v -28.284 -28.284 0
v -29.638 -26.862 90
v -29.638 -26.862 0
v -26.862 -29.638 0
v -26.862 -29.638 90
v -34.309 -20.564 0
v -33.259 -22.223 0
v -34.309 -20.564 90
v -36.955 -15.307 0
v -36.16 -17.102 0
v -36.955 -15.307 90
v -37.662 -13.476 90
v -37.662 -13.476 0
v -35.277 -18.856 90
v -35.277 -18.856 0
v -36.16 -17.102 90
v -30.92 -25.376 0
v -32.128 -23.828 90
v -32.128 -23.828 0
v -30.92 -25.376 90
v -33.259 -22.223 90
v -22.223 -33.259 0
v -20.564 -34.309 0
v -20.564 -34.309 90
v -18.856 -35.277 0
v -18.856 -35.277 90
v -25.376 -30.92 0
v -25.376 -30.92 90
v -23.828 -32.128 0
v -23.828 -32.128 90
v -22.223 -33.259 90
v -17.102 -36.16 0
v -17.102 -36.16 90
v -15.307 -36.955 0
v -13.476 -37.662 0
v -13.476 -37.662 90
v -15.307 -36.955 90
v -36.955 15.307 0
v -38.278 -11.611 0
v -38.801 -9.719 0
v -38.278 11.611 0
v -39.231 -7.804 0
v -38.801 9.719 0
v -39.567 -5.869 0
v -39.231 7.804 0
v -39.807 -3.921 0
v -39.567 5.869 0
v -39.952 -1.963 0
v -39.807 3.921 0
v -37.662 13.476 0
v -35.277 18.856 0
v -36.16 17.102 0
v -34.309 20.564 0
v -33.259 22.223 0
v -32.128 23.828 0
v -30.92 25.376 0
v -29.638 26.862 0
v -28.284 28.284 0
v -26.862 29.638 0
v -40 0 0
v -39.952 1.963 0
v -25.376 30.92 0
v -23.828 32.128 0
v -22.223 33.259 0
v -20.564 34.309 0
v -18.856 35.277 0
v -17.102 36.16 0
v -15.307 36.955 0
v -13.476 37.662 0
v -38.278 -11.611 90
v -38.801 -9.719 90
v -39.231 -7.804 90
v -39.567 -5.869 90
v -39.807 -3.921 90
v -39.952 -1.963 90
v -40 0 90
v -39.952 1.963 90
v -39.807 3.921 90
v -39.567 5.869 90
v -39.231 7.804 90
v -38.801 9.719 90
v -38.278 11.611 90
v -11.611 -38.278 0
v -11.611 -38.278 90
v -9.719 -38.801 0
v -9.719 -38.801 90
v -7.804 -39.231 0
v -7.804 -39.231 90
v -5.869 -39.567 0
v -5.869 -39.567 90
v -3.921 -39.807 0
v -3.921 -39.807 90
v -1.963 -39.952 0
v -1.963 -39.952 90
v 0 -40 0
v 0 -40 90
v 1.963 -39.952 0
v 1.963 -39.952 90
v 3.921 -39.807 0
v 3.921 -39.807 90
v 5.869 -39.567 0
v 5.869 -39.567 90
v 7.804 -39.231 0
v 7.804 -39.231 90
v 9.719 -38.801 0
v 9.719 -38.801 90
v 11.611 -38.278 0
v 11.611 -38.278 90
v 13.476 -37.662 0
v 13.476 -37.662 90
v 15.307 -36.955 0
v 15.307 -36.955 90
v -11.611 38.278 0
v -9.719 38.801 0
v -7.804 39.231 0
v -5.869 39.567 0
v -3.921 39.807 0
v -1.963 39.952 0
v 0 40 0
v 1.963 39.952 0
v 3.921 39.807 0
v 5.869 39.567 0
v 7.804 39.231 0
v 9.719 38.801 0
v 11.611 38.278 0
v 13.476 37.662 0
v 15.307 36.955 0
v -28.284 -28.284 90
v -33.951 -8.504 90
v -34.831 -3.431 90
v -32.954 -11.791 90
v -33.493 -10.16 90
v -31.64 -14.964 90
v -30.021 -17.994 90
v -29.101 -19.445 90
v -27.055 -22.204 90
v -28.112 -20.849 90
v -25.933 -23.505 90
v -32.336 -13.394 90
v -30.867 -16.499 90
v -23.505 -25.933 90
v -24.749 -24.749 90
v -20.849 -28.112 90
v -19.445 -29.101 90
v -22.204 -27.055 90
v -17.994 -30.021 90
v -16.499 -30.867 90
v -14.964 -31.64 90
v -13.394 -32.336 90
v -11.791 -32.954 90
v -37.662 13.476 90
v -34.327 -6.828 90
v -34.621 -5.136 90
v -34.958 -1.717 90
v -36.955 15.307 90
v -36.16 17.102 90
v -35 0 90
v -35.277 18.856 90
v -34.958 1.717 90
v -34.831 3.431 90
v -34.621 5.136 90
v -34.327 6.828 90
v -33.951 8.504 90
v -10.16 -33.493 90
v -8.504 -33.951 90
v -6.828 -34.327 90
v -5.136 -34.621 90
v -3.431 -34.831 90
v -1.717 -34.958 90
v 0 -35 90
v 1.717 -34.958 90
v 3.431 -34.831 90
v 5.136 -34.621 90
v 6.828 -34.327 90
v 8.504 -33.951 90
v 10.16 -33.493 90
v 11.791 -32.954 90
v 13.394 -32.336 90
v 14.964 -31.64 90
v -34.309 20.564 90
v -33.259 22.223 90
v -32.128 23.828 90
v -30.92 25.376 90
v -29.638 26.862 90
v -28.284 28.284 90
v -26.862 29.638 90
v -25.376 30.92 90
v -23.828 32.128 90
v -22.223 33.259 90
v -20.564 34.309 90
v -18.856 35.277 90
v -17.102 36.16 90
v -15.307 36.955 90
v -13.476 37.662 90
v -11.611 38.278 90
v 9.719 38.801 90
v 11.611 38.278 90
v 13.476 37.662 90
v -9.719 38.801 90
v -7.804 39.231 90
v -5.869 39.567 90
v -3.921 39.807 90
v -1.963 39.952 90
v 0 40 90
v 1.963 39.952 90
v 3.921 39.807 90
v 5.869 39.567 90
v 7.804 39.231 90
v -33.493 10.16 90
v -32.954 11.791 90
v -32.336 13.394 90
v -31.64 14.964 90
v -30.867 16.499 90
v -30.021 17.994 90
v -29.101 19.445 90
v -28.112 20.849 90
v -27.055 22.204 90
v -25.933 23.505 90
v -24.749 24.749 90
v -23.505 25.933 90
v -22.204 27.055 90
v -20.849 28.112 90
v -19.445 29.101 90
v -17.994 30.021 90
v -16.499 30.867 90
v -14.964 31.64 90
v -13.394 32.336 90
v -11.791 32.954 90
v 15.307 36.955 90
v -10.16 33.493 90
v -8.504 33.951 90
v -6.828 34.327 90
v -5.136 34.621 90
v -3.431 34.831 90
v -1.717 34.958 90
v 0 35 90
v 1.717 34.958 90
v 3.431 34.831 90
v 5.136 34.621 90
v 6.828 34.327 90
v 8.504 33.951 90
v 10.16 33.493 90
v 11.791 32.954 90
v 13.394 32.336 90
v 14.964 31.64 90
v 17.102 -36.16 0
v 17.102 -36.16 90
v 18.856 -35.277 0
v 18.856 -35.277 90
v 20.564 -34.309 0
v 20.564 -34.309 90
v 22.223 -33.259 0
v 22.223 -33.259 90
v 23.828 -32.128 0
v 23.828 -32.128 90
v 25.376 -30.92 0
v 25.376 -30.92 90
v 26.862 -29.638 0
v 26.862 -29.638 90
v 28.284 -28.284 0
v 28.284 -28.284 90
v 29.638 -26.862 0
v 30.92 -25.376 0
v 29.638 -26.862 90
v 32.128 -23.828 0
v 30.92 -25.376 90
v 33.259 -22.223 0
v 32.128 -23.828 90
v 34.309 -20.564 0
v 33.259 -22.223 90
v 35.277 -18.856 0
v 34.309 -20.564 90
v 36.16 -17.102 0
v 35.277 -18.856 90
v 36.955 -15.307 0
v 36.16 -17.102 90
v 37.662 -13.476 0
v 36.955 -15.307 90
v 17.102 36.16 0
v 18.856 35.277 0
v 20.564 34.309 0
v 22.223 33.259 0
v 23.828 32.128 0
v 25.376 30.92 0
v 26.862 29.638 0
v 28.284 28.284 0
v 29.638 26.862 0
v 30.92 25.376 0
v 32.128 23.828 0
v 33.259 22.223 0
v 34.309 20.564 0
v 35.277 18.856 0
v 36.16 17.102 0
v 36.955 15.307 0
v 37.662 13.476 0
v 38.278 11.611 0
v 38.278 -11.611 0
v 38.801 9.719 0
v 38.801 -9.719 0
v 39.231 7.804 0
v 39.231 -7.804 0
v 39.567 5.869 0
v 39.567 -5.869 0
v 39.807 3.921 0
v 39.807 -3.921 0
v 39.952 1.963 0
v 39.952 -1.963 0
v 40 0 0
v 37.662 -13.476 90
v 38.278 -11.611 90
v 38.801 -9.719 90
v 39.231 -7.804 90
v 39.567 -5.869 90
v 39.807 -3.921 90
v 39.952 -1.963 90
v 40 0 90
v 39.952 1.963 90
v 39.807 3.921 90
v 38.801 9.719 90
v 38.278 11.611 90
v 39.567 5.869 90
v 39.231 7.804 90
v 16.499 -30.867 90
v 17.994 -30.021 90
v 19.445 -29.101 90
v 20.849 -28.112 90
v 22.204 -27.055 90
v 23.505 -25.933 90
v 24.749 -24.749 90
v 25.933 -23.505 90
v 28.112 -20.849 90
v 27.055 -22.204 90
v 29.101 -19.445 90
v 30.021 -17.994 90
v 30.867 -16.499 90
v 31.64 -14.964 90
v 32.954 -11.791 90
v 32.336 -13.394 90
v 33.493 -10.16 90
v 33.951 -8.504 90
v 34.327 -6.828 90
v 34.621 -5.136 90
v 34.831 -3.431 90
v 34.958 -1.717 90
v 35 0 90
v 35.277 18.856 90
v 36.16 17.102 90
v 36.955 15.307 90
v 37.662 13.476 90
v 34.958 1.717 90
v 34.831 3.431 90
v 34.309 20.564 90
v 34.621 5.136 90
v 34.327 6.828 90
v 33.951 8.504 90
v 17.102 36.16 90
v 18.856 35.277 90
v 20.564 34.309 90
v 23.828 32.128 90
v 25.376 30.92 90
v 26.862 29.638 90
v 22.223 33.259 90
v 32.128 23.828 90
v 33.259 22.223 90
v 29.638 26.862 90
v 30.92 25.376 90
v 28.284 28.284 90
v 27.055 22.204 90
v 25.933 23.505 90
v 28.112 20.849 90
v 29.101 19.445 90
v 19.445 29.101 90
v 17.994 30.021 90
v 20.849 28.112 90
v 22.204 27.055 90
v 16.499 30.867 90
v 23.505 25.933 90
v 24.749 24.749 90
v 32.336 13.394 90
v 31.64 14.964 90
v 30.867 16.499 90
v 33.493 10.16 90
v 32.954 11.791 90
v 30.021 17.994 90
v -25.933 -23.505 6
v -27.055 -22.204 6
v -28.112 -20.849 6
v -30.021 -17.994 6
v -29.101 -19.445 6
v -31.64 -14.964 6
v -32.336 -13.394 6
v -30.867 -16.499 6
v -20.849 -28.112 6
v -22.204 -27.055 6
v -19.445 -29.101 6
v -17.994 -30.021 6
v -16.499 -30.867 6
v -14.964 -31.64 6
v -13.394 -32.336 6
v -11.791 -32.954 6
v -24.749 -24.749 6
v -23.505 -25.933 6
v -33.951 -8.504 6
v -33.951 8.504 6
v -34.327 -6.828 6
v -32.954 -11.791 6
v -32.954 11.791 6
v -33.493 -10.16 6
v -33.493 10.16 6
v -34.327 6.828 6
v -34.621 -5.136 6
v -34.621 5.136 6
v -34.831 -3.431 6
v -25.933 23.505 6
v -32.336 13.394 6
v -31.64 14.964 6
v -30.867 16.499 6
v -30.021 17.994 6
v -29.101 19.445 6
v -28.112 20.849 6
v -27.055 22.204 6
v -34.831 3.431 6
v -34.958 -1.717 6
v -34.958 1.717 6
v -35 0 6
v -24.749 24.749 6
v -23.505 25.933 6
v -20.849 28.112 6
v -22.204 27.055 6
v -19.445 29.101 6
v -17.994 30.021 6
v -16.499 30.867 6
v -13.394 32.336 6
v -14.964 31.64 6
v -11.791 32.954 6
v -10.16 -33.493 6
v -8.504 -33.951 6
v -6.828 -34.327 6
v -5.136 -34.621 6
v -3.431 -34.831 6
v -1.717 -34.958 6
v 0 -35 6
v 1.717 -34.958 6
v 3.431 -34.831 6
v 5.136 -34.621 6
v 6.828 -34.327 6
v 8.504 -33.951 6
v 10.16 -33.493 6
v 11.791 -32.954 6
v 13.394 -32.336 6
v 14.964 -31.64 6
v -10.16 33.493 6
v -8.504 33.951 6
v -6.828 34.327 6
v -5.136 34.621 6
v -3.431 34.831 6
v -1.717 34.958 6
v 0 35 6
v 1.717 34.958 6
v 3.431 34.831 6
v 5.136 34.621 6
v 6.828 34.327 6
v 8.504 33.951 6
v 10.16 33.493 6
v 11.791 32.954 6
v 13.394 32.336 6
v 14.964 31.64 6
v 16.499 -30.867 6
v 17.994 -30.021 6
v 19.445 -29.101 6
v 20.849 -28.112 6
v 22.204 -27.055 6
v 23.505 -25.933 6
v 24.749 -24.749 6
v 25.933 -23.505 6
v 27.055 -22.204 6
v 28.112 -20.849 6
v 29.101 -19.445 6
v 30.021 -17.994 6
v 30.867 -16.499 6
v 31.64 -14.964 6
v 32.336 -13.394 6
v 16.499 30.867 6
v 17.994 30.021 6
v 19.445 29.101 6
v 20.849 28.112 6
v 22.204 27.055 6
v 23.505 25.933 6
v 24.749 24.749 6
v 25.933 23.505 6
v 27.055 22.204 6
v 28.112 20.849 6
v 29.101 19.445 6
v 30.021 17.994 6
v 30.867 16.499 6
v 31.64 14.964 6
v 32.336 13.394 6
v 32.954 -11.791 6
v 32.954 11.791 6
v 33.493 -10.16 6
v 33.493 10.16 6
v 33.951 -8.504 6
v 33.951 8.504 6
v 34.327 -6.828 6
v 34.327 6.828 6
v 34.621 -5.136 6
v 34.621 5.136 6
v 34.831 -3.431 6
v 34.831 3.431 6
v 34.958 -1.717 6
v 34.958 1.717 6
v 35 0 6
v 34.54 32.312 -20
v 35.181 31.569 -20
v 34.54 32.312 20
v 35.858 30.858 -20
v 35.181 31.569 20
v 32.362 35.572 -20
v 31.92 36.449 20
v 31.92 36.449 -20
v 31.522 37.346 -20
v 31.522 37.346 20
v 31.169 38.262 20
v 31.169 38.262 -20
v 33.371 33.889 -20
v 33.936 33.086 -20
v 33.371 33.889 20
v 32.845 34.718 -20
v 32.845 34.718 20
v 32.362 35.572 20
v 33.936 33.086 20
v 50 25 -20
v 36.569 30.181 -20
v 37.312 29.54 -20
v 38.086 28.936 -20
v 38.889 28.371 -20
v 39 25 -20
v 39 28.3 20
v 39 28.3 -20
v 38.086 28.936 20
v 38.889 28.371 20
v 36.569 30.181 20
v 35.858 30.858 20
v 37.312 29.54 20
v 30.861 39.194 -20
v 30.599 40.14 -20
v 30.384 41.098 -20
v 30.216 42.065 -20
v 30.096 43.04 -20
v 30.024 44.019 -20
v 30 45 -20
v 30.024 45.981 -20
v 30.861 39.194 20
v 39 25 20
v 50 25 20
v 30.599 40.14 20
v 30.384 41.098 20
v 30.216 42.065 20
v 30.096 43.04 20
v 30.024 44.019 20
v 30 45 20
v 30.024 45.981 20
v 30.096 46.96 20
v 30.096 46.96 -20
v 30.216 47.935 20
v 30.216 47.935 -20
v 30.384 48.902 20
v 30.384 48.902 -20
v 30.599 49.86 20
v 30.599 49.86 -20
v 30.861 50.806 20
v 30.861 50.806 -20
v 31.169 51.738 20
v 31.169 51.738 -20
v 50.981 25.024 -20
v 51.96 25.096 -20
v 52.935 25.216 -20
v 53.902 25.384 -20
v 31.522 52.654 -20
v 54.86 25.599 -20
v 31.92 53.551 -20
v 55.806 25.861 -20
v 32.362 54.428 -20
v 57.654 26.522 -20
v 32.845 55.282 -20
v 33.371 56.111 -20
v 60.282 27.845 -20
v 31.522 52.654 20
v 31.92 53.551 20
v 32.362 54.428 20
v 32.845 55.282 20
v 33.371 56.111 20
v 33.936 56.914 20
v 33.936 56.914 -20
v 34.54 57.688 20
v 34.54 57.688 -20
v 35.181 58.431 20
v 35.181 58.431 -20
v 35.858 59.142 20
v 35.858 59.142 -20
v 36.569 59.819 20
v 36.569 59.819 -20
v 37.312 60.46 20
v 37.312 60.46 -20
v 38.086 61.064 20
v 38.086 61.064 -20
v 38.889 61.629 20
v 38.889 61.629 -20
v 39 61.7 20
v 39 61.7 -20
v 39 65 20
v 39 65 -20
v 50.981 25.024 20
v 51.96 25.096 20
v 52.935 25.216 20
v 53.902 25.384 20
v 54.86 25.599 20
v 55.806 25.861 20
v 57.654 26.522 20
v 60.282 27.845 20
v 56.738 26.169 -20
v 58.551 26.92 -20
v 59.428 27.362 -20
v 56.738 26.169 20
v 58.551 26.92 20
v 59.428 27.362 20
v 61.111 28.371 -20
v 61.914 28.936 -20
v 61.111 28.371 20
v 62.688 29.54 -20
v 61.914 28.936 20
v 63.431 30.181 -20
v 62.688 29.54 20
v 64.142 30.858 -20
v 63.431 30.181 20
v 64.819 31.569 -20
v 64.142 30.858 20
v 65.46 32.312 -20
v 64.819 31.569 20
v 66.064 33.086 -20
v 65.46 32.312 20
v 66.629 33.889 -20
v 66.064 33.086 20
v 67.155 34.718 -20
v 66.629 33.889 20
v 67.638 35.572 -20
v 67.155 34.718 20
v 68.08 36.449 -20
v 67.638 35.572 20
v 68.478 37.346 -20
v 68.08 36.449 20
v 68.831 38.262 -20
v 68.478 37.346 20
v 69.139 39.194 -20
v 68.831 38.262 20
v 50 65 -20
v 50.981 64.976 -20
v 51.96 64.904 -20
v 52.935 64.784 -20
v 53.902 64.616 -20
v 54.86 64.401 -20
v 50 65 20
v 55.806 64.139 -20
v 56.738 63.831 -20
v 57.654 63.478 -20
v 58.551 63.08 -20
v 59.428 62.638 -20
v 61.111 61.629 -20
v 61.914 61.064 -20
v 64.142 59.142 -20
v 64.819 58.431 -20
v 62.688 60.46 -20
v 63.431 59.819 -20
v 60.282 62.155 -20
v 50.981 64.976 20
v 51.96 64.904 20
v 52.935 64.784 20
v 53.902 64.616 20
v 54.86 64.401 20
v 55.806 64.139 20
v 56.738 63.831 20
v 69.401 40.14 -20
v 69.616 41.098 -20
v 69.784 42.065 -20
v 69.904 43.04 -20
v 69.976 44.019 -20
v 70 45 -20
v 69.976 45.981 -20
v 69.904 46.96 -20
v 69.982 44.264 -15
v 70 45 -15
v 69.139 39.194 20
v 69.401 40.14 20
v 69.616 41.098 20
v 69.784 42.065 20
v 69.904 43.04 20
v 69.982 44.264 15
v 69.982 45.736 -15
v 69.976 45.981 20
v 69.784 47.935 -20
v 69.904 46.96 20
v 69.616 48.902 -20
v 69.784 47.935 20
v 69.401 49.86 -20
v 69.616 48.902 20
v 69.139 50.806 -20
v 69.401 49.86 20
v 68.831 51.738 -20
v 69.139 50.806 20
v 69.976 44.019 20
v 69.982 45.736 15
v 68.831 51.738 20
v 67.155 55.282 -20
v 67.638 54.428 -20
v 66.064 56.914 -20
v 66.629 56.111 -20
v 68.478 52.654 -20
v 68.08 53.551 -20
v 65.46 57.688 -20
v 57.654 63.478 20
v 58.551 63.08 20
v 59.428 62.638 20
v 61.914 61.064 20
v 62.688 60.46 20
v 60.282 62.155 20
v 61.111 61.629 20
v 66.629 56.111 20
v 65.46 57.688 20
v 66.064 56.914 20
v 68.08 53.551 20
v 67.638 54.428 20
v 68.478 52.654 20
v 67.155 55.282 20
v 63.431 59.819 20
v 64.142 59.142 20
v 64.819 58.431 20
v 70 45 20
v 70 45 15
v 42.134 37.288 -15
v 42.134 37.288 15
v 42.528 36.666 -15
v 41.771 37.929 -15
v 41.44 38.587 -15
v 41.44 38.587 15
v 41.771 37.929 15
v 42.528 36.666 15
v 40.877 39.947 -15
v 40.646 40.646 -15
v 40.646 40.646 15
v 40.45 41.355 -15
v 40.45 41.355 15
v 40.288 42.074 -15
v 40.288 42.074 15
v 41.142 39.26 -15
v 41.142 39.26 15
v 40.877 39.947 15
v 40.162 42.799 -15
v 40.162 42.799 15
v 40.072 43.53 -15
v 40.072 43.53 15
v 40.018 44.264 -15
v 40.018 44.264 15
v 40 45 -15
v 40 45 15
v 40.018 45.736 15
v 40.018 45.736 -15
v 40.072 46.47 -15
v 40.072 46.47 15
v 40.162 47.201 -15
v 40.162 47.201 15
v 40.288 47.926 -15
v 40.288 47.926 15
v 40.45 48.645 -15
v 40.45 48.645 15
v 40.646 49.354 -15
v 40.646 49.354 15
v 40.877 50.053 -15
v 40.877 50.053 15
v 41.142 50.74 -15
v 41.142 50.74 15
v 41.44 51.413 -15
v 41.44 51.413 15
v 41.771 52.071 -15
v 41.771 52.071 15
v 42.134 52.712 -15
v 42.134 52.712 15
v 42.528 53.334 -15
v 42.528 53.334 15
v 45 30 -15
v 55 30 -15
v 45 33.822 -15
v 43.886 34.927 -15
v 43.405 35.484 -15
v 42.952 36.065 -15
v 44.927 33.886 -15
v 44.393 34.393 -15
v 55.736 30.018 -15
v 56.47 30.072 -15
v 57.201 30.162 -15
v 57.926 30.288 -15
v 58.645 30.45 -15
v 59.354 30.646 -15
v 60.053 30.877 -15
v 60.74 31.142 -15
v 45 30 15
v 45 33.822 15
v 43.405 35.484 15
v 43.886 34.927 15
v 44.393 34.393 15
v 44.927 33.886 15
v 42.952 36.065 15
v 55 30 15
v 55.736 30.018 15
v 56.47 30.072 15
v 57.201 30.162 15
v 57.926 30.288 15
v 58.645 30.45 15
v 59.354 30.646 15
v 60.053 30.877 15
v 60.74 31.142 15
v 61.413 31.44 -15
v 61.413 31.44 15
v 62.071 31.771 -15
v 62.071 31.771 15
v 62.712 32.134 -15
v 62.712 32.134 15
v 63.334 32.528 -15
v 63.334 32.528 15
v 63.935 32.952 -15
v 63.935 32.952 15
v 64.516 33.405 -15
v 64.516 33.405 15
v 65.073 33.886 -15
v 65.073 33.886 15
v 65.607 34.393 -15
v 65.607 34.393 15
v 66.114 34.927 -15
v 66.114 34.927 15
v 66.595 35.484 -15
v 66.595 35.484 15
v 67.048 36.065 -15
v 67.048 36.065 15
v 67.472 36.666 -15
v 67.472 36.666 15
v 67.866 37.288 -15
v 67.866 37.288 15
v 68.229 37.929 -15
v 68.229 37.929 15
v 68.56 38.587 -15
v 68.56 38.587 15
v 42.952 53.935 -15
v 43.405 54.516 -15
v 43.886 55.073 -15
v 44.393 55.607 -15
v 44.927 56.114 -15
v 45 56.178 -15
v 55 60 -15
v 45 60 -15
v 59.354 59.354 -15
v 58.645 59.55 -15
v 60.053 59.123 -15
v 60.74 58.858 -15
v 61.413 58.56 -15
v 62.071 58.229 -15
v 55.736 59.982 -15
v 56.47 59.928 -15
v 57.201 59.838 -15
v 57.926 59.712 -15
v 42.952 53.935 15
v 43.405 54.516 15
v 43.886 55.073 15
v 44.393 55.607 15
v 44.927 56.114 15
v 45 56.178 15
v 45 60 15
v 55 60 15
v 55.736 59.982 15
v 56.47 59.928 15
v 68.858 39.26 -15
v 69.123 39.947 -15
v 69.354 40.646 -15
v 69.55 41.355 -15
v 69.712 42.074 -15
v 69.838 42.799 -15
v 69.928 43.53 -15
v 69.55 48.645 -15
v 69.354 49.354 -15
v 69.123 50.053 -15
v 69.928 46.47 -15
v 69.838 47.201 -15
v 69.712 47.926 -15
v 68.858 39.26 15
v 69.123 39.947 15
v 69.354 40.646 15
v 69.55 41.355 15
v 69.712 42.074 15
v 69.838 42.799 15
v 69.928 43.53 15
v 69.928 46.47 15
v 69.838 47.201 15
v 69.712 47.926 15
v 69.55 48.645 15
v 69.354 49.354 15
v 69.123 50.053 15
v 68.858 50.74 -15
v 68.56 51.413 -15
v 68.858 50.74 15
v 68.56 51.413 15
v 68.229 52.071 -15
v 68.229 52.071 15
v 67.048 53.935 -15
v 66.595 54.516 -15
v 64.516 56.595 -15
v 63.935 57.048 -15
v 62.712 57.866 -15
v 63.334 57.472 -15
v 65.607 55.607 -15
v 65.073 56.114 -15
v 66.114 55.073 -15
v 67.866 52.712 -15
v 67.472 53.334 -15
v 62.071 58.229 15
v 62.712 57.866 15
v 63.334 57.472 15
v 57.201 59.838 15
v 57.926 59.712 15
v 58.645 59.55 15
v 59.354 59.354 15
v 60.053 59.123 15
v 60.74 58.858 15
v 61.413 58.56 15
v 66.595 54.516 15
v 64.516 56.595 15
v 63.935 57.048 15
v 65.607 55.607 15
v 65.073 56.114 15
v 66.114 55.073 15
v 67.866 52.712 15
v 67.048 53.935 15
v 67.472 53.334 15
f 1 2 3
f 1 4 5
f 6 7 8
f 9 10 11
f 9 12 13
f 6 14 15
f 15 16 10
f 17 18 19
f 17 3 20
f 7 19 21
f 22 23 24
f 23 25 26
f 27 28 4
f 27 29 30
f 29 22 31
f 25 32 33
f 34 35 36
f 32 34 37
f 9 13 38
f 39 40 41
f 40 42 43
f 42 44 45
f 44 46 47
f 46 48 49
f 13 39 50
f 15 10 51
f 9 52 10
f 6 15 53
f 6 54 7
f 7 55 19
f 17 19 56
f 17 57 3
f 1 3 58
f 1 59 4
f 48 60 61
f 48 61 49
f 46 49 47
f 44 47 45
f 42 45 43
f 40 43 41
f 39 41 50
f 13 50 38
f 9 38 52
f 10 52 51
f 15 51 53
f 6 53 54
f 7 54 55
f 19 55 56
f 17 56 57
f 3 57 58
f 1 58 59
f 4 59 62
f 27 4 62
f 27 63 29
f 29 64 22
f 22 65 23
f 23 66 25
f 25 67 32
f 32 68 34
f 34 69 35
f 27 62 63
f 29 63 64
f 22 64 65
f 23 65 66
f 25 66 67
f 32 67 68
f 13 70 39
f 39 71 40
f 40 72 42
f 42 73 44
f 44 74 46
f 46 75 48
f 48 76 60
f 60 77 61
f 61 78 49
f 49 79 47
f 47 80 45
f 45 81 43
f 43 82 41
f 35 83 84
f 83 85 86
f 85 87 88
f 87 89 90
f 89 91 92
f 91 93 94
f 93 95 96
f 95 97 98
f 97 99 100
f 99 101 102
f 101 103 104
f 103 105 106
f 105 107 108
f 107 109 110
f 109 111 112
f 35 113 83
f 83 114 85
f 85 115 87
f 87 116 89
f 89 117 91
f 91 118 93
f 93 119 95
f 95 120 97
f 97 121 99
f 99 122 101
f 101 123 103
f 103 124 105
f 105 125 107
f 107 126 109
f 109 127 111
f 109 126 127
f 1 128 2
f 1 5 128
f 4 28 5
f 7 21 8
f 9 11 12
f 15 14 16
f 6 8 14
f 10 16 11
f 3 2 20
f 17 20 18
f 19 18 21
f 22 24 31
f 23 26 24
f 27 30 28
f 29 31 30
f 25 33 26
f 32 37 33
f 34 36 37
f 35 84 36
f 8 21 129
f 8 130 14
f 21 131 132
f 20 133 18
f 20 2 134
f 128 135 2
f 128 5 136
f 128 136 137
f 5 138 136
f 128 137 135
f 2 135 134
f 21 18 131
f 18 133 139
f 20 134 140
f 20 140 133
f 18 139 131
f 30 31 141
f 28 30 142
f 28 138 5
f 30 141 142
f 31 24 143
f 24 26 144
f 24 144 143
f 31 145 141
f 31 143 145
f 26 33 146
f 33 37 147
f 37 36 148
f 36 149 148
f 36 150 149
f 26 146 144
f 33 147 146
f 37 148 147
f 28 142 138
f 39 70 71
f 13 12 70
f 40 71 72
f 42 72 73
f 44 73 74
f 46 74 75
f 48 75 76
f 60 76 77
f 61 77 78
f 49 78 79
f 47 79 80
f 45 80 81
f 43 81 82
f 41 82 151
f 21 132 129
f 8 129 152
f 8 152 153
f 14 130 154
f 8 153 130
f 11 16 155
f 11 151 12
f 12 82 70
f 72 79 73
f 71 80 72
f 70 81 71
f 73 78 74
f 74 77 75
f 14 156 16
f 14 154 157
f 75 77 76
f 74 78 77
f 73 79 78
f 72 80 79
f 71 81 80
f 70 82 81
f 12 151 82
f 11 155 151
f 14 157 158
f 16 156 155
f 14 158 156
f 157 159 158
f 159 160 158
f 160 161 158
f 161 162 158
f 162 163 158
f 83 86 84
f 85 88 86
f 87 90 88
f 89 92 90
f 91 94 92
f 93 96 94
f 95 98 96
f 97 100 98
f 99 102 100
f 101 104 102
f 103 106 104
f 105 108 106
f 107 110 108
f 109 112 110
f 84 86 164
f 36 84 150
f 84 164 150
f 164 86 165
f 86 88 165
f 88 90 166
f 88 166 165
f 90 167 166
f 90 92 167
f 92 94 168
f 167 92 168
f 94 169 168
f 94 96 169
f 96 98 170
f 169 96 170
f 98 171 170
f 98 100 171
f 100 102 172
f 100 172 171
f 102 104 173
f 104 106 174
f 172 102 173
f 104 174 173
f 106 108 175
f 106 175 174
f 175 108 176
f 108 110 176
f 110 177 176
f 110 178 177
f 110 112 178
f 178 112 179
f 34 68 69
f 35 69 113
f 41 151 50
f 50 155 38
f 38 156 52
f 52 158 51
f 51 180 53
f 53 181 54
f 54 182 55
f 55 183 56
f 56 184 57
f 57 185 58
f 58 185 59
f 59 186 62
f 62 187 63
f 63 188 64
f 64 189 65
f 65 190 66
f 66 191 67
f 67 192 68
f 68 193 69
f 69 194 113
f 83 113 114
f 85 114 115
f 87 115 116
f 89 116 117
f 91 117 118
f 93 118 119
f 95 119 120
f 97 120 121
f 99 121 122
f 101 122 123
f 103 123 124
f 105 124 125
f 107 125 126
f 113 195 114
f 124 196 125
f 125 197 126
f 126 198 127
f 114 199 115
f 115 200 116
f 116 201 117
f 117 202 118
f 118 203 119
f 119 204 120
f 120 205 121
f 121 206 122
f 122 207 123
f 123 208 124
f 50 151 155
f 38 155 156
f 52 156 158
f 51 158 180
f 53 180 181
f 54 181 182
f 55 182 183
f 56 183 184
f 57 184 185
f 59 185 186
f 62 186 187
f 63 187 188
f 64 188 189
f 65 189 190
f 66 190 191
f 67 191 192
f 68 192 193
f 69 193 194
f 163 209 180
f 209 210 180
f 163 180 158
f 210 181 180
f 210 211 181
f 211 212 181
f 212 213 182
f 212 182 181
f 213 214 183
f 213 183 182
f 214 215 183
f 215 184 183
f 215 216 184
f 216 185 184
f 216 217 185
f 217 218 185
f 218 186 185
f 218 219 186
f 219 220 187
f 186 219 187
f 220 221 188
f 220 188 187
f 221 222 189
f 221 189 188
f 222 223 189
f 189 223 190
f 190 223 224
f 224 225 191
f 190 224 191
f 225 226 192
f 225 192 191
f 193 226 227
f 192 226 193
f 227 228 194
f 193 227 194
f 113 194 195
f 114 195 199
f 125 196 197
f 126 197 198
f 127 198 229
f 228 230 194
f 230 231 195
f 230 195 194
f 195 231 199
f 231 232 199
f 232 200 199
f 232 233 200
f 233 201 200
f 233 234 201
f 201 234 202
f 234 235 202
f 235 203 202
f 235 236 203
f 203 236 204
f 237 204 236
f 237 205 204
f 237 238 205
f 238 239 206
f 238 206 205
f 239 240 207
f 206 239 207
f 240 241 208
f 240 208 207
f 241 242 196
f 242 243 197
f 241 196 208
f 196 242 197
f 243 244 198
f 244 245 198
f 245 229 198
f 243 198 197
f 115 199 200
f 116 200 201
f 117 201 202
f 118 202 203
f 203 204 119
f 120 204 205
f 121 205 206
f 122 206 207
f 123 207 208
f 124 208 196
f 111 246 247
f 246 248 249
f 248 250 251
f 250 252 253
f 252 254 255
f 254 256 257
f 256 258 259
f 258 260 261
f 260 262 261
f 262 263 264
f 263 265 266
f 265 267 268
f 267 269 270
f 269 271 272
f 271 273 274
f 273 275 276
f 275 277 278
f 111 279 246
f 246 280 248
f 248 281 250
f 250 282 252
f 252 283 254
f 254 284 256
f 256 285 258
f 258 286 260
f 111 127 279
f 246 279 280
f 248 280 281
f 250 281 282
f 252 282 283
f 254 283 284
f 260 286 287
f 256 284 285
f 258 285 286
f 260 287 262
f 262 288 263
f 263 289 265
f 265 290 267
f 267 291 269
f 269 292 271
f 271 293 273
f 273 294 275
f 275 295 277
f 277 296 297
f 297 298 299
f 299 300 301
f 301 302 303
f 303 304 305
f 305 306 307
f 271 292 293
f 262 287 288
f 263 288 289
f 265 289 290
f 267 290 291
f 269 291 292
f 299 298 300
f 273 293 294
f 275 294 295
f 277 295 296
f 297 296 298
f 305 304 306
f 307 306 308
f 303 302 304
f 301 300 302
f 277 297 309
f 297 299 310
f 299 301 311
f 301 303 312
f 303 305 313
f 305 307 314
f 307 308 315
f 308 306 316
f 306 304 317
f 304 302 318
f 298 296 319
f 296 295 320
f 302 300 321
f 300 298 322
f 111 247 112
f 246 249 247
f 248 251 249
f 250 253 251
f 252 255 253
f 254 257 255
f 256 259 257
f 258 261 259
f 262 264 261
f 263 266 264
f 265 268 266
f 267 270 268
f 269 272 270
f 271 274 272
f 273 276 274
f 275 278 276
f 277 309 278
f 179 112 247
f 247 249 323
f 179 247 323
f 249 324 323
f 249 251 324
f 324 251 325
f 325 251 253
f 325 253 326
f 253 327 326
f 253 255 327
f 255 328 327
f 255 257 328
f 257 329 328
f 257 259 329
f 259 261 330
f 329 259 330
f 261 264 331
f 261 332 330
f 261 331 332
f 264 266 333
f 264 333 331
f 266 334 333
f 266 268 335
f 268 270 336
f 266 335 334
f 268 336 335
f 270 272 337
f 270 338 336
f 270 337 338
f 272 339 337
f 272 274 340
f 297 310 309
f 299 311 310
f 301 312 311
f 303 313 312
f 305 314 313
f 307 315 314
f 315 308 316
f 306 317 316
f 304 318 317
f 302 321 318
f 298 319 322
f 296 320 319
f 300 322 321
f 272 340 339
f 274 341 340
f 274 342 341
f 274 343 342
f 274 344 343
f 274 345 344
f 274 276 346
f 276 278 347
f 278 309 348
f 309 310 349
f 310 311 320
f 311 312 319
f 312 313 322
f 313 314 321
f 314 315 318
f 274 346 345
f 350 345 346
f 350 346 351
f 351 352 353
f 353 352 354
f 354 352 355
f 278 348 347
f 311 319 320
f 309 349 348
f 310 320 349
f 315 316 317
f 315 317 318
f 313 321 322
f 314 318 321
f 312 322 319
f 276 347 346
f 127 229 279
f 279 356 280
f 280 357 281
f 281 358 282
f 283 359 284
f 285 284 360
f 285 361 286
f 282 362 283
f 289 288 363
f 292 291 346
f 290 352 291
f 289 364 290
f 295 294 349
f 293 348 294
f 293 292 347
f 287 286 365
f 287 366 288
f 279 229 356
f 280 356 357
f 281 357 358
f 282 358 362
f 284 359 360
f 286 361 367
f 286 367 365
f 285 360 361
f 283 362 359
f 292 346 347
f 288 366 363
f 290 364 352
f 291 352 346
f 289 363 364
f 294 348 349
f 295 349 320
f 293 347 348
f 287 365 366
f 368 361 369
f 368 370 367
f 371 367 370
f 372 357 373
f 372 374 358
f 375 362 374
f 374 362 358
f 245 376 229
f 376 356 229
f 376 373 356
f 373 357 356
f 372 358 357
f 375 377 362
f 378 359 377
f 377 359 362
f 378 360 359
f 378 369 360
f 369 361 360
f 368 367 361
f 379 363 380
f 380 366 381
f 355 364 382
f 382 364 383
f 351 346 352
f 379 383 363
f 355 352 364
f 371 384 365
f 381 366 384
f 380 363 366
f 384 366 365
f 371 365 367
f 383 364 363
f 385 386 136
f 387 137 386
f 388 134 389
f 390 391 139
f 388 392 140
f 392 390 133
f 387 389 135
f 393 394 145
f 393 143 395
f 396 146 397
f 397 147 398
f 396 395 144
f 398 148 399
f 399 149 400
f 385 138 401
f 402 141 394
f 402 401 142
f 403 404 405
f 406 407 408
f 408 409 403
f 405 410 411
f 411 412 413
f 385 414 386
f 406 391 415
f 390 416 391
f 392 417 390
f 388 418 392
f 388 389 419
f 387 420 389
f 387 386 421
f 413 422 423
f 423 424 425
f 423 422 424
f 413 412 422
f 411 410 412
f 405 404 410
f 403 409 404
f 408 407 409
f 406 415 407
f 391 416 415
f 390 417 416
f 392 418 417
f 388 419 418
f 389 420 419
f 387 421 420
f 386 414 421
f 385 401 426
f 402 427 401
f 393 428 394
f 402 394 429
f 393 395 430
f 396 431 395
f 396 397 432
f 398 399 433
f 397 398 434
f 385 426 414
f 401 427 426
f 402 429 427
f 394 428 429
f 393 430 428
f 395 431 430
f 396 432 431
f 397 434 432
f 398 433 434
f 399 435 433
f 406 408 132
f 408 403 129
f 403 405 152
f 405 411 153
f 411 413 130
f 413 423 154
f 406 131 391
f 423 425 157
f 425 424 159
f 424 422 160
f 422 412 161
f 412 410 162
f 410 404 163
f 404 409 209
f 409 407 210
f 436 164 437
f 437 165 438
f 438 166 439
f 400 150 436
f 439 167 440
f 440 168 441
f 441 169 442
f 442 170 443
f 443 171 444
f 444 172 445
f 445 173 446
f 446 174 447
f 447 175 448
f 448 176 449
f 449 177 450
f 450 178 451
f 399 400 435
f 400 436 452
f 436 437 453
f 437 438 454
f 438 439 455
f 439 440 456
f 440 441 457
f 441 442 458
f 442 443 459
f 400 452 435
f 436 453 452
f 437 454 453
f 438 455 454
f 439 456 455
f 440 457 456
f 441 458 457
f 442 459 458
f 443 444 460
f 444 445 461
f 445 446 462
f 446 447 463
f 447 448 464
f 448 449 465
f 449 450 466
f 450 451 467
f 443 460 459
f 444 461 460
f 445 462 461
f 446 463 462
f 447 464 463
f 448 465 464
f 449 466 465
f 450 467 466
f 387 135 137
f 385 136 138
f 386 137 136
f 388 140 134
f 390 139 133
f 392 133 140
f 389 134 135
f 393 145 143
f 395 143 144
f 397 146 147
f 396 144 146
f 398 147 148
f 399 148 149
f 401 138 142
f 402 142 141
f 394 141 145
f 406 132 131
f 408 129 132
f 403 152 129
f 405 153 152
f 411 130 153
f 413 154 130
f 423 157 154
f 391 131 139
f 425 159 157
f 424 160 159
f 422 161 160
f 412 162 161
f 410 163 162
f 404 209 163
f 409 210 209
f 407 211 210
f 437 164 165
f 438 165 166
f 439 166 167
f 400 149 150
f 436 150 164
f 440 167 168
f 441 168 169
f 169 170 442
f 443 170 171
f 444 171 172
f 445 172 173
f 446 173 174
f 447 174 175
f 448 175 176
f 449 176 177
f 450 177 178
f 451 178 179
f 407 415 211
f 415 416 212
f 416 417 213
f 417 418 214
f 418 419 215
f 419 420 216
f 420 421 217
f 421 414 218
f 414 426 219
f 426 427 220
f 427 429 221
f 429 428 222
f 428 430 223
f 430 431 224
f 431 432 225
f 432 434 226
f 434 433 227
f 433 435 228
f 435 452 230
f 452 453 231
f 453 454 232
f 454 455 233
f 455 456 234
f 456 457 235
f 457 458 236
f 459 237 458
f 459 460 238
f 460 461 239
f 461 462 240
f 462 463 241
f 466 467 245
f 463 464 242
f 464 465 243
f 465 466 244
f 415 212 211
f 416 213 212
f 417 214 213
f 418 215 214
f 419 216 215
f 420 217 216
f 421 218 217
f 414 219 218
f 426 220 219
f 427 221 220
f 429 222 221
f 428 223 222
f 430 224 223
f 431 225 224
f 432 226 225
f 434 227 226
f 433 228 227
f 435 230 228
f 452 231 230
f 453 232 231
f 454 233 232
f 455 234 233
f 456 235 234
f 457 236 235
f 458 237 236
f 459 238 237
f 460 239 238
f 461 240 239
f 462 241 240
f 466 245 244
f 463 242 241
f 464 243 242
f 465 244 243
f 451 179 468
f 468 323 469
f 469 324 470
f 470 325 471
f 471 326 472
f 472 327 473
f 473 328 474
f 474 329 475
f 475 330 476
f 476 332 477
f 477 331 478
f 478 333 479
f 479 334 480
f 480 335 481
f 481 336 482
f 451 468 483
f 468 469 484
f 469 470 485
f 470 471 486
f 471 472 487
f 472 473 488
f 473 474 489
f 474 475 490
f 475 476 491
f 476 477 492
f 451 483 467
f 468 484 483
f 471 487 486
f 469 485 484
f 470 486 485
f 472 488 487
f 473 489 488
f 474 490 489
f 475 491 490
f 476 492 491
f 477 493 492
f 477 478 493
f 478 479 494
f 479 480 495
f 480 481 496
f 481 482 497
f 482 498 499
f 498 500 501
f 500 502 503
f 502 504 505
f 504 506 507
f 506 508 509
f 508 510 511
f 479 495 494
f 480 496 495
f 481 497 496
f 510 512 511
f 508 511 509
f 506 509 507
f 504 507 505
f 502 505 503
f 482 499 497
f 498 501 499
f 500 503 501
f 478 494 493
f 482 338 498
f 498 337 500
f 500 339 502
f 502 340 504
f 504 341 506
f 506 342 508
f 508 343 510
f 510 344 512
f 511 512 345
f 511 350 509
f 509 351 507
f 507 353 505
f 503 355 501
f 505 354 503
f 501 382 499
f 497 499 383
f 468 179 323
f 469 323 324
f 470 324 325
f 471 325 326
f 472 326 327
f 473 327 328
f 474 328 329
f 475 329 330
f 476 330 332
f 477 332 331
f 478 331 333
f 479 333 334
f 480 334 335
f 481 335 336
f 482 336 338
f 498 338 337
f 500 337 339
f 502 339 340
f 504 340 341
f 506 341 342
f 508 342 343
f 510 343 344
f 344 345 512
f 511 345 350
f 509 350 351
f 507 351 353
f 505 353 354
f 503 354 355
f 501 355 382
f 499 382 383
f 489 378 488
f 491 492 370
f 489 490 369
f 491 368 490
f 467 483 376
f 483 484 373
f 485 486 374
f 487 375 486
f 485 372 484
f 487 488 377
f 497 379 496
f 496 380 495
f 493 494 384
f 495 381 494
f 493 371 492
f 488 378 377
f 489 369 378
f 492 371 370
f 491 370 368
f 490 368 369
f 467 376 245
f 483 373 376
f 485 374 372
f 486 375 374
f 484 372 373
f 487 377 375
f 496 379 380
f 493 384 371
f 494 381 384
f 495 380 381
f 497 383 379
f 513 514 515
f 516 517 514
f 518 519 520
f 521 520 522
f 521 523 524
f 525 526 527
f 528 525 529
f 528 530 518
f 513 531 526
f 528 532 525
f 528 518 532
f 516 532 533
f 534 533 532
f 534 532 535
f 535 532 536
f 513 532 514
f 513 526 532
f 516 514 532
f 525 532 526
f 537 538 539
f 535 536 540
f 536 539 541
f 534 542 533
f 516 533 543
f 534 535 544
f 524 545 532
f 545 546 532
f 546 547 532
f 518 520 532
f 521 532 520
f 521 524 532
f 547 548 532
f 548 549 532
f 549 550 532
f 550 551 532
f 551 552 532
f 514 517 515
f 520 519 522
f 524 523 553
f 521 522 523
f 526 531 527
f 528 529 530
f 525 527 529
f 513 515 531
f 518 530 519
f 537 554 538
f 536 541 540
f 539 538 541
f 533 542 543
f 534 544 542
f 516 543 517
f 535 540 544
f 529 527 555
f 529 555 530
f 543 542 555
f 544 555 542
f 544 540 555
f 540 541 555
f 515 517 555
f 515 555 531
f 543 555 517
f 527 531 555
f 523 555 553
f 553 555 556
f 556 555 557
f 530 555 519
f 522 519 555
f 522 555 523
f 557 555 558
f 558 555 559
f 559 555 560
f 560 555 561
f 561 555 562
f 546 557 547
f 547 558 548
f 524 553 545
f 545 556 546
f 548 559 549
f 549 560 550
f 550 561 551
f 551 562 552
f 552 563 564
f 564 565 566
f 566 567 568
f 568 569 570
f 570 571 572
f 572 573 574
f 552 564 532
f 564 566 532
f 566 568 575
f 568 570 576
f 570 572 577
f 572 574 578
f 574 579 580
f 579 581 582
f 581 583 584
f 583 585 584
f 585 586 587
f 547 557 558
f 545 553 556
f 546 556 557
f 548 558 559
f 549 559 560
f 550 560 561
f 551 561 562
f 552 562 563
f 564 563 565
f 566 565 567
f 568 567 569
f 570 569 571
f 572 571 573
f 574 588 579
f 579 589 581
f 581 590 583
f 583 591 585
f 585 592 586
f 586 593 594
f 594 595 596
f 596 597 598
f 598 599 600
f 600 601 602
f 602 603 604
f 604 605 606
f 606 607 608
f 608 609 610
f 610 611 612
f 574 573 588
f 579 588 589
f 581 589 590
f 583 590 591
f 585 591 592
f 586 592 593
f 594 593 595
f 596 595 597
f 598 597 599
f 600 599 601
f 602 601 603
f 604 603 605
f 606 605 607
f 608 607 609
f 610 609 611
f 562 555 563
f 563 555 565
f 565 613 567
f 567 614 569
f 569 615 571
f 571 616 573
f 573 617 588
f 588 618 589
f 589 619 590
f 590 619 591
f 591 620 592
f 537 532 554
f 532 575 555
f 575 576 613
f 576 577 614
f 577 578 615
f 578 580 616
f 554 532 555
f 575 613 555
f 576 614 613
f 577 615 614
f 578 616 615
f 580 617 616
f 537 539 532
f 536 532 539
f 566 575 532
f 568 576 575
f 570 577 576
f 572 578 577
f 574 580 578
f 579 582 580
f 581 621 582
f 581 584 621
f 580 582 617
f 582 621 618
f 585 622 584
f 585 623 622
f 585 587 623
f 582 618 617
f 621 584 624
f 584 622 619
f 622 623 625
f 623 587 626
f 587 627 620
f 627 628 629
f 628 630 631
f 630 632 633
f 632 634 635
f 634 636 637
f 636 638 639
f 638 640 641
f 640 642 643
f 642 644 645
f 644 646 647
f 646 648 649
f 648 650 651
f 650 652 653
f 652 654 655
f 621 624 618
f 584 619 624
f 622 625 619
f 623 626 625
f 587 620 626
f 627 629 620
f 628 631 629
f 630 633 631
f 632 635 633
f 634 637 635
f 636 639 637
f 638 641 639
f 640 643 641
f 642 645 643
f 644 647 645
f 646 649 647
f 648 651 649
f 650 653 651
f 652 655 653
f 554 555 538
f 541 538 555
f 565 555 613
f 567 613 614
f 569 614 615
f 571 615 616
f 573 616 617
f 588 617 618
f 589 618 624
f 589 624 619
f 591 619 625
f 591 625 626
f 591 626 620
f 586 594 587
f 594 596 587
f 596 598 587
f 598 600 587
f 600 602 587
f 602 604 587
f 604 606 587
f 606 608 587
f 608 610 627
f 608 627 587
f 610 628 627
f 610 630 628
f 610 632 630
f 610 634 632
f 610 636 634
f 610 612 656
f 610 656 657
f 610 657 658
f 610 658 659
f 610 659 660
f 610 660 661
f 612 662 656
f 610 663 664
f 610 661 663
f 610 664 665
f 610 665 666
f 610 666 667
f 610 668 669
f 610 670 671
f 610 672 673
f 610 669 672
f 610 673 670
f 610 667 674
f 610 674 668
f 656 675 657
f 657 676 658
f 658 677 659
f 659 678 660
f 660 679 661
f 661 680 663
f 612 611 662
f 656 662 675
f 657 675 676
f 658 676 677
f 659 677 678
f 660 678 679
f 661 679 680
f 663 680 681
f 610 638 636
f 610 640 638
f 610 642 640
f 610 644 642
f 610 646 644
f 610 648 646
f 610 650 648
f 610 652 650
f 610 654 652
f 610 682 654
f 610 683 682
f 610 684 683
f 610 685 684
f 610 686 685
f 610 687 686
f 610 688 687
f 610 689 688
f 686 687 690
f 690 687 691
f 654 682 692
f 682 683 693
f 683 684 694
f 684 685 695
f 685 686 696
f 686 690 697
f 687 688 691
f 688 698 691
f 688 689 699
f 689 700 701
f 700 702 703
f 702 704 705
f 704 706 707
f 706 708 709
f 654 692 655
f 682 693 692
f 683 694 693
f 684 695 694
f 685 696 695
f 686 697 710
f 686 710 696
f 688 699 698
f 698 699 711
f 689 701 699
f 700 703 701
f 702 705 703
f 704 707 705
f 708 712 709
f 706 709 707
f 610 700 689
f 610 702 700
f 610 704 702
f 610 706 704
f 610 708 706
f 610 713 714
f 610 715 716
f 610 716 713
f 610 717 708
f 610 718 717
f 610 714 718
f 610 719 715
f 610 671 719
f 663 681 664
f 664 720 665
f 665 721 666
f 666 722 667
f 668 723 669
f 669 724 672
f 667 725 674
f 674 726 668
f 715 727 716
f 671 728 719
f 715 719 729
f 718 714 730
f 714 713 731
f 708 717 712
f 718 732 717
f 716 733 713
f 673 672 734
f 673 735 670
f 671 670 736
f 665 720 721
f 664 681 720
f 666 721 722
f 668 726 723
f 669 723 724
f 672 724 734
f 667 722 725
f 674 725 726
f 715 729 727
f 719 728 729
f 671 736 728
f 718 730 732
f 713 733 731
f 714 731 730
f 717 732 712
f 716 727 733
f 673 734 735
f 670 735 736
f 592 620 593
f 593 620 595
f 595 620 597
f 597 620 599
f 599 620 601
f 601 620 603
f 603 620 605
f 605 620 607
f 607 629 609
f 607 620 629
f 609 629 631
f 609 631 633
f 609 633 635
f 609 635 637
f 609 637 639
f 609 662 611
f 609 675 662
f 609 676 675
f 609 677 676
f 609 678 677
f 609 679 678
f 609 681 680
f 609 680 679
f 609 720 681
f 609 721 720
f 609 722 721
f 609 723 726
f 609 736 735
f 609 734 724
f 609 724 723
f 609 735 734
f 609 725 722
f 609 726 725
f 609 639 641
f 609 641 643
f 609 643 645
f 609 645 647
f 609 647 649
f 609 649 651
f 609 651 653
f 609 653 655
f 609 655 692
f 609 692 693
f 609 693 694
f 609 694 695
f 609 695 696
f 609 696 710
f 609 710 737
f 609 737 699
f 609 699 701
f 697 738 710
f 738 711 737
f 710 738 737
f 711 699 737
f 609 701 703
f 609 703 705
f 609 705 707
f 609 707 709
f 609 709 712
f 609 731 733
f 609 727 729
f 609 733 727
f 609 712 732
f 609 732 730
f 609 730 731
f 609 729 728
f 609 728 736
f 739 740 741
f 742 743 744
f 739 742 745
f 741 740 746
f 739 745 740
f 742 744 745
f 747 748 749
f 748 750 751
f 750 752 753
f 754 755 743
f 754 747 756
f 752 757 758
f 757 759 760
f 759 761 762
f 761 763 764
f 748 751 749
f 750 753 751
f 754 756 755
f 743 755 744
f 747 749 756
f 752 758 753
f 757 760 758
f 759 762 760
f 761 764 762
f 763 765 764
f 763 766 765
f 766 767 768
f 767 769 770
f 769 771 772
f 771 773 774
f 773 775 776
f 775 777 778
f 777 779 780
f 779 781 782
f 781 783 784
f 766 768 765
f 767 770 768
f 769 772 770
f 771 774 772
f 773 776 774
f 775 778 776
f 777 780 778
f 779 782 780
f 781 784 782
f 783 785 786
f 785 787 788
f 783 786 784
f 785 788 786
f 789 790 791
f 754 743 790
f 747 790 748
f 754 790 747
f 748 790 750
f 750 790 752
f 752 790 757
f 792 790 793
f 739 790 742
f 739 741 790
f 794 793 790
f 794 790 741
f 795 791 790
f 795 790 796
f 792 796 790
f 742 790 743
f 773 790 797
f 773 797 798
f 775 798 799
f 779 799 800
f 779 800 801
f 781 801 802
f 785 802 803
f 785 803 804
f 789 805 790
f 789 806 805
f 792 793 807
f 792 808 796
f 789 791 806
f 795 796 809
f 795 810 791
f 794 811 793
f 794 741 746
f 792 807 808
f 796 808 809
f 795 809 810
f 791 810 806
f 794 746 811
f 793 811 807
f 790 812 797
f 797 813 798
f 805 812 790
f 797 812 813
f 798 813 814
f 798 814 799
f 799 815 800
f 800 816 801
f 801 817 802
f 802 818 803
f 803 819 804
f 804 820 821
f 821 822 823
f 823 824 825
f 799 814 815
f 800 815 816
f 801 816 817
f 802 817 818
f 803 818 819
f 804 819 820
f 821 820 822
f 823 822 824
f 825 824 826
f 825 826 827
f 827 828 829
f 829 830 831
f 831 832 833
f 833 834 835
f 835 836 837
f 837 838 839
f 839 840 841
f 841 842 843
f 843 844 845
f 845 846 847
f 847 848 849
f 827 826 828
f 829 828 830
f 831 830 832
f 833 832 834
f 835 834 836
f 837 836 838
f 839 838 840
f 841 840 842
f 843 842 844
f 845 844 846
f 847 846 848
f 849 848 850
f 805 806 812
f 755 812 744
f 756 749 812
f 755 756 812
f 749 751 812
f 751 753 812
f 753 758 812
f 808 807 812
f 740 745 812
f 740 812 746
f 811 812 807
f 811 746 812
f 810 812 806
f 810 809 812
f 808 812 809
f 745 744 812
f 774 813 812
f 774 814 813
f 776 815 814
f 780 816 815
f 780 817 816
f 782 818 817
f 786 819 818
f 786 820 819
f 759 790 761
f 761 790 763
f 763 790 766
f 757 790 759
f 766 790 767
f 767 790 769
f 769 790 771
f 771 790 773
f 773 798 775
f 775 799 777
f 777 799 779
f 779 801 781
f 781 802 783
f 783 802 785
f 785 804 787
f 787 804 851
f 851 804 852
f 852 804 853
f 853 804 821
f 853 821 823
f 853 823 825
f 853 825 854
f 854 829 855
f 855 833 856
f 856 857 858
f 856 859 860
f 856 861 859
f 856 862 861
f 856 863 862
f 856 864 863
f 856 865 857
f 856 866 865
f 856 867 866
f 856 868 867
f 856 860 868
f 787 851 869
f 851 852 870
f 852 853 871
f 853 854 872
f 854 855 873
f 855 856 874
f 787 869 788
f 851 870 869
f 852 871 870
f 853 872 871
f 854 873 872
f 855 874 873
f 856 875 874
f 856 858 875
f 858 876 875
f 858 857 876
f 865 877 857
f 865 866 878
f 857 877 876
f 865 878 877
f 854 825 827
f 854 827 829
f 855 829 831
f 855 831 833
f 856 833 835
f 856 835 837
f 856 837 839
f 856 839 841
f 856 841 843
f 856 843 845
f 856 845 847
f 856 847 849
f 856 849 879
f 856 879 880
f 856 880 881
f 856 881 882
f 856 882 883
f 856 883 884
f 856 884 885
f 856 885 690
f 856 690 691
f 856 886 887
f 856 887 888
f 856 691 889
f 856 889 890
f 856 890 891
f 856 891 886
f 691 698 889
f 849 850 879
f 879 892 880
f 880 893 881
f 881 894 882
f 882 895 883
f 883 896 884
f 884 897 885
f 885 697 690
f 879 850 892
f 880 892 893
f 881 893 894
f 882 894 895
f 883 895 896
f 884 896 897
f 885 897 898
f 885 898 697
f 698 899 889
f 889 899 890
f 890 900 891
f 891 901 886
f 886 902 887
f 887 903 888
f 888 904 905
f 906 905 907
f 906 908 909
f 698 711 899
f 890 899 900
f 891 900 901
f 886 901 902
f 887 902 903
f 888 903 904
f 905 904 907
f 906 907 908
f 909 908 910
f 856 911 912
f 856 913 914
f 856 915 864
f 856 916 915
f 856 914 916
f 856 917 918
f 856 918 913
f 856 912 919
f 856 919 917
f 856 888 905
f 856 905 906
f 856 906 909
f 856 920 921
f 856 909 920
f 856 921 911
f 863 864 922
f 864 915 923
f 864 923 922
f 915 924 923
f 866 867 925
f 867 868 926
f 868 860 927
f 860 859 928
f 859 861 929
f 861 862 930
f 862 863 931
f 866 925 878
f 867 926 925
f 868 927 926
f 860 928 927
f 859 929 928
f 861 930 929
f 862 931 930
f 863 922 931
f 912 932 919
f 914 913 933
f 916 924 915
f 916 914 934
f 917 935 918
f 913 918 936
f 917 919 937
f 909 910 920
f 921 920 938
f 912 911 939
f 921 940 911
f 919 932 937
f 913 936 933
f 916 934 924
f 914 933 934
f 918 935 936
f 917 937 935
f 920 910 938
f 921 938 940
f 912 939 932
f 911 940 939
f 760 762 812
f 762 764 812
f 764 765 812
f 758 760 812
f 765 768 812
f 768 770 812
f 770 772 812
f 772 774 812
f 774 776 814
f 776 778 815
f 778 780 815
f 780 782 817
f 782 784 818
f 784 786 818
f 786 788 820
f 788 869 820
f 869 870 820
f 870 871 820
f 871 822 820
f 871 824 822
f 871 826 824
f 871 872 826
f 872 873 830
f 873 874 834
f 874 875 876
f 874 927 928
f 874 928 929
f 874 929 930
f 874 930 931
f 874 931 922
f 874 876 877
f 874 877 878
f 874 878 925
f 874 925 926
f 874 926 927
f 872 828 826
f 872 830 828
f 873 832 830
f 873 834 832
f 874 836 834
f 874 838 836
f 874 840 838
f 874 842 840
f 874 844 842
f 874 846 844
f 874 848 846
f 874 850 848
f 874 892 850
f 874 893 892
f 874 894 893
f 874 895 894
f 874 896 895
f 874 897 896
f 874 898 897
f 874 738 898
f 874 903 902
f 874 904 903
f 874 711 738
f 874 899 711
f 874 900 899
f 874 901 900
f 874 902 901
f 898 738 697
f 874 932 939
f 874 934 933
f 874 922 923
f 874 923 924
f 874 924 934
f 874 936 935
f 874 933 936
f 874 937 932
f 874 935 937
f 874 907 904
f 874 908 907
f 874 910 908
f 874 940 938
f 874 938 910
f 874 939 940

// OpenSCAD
$fn = 128;

// Mug dimensions
outer_d   = 80;
inner_d   = 70;
mug_h     = 90;
bottom_t  = 6;

// Handle inner opening dimensions
handle_open_w = 25;   // width in radial (X) direction
handle_open_h = 30;   // height in Z direction

// Handle thickness
handle_wall = 5;

// Derived mug radii
outer_r = outer_d / 2;
inner_r = inner_d / 2;

// Handle dimensions
handle_outer_w = handle_open_w + handle_wall;   // D-shape total width (straight side to farthest point)
handle_outer_h = handle_open_h + 2 * handle_wall;

handle_inner_r = handle_open_h / 2;
handle_outer_r = handle_outer_h / 2;

handle_center_z = mug_h / 2;

// Slight overlap into mug body to guarantee manifold union
attach_overlap = 1.0;

// 2D D-shape in XZ plane:
// left side is the straight attachment side, right side is the semicircular outer side
module d2d(x_left, z_center, total_w, total_h) {
    r = total_h / 2;
    union() {
        square_w = total_w - r;
        translate([x_left, z_center - r])
            square([square_w, total_h], center = false);
        translate([x_left + square_w, z_center])
            circle(r = r);
    }
}

module mug_body() {
    difference() {
        cylinder(h = mug_h, r = outer_r);
        translate([0, 0, bottom_t])
            cylinder(h = mug_h - bottom_t + 0.01, r = inner_r);
    }
}

module handle() {
    difference() {
        // Outer handle body
        linear_extrude(height = handle_outer_h, center = true)
            d2d(outer_r - attach_overlap, handle_center_z, handle_outer_w + attach_overlap, handle_outer_h);

        // Inner finger opening
        linear_extrude(height = handle_open_h, center = true)
            d2d(outer_r + handle_wall, handle_center_z, handle_open_w, handle_open_h);
    }
}

union() {
    mug_body();
    handle();
}
